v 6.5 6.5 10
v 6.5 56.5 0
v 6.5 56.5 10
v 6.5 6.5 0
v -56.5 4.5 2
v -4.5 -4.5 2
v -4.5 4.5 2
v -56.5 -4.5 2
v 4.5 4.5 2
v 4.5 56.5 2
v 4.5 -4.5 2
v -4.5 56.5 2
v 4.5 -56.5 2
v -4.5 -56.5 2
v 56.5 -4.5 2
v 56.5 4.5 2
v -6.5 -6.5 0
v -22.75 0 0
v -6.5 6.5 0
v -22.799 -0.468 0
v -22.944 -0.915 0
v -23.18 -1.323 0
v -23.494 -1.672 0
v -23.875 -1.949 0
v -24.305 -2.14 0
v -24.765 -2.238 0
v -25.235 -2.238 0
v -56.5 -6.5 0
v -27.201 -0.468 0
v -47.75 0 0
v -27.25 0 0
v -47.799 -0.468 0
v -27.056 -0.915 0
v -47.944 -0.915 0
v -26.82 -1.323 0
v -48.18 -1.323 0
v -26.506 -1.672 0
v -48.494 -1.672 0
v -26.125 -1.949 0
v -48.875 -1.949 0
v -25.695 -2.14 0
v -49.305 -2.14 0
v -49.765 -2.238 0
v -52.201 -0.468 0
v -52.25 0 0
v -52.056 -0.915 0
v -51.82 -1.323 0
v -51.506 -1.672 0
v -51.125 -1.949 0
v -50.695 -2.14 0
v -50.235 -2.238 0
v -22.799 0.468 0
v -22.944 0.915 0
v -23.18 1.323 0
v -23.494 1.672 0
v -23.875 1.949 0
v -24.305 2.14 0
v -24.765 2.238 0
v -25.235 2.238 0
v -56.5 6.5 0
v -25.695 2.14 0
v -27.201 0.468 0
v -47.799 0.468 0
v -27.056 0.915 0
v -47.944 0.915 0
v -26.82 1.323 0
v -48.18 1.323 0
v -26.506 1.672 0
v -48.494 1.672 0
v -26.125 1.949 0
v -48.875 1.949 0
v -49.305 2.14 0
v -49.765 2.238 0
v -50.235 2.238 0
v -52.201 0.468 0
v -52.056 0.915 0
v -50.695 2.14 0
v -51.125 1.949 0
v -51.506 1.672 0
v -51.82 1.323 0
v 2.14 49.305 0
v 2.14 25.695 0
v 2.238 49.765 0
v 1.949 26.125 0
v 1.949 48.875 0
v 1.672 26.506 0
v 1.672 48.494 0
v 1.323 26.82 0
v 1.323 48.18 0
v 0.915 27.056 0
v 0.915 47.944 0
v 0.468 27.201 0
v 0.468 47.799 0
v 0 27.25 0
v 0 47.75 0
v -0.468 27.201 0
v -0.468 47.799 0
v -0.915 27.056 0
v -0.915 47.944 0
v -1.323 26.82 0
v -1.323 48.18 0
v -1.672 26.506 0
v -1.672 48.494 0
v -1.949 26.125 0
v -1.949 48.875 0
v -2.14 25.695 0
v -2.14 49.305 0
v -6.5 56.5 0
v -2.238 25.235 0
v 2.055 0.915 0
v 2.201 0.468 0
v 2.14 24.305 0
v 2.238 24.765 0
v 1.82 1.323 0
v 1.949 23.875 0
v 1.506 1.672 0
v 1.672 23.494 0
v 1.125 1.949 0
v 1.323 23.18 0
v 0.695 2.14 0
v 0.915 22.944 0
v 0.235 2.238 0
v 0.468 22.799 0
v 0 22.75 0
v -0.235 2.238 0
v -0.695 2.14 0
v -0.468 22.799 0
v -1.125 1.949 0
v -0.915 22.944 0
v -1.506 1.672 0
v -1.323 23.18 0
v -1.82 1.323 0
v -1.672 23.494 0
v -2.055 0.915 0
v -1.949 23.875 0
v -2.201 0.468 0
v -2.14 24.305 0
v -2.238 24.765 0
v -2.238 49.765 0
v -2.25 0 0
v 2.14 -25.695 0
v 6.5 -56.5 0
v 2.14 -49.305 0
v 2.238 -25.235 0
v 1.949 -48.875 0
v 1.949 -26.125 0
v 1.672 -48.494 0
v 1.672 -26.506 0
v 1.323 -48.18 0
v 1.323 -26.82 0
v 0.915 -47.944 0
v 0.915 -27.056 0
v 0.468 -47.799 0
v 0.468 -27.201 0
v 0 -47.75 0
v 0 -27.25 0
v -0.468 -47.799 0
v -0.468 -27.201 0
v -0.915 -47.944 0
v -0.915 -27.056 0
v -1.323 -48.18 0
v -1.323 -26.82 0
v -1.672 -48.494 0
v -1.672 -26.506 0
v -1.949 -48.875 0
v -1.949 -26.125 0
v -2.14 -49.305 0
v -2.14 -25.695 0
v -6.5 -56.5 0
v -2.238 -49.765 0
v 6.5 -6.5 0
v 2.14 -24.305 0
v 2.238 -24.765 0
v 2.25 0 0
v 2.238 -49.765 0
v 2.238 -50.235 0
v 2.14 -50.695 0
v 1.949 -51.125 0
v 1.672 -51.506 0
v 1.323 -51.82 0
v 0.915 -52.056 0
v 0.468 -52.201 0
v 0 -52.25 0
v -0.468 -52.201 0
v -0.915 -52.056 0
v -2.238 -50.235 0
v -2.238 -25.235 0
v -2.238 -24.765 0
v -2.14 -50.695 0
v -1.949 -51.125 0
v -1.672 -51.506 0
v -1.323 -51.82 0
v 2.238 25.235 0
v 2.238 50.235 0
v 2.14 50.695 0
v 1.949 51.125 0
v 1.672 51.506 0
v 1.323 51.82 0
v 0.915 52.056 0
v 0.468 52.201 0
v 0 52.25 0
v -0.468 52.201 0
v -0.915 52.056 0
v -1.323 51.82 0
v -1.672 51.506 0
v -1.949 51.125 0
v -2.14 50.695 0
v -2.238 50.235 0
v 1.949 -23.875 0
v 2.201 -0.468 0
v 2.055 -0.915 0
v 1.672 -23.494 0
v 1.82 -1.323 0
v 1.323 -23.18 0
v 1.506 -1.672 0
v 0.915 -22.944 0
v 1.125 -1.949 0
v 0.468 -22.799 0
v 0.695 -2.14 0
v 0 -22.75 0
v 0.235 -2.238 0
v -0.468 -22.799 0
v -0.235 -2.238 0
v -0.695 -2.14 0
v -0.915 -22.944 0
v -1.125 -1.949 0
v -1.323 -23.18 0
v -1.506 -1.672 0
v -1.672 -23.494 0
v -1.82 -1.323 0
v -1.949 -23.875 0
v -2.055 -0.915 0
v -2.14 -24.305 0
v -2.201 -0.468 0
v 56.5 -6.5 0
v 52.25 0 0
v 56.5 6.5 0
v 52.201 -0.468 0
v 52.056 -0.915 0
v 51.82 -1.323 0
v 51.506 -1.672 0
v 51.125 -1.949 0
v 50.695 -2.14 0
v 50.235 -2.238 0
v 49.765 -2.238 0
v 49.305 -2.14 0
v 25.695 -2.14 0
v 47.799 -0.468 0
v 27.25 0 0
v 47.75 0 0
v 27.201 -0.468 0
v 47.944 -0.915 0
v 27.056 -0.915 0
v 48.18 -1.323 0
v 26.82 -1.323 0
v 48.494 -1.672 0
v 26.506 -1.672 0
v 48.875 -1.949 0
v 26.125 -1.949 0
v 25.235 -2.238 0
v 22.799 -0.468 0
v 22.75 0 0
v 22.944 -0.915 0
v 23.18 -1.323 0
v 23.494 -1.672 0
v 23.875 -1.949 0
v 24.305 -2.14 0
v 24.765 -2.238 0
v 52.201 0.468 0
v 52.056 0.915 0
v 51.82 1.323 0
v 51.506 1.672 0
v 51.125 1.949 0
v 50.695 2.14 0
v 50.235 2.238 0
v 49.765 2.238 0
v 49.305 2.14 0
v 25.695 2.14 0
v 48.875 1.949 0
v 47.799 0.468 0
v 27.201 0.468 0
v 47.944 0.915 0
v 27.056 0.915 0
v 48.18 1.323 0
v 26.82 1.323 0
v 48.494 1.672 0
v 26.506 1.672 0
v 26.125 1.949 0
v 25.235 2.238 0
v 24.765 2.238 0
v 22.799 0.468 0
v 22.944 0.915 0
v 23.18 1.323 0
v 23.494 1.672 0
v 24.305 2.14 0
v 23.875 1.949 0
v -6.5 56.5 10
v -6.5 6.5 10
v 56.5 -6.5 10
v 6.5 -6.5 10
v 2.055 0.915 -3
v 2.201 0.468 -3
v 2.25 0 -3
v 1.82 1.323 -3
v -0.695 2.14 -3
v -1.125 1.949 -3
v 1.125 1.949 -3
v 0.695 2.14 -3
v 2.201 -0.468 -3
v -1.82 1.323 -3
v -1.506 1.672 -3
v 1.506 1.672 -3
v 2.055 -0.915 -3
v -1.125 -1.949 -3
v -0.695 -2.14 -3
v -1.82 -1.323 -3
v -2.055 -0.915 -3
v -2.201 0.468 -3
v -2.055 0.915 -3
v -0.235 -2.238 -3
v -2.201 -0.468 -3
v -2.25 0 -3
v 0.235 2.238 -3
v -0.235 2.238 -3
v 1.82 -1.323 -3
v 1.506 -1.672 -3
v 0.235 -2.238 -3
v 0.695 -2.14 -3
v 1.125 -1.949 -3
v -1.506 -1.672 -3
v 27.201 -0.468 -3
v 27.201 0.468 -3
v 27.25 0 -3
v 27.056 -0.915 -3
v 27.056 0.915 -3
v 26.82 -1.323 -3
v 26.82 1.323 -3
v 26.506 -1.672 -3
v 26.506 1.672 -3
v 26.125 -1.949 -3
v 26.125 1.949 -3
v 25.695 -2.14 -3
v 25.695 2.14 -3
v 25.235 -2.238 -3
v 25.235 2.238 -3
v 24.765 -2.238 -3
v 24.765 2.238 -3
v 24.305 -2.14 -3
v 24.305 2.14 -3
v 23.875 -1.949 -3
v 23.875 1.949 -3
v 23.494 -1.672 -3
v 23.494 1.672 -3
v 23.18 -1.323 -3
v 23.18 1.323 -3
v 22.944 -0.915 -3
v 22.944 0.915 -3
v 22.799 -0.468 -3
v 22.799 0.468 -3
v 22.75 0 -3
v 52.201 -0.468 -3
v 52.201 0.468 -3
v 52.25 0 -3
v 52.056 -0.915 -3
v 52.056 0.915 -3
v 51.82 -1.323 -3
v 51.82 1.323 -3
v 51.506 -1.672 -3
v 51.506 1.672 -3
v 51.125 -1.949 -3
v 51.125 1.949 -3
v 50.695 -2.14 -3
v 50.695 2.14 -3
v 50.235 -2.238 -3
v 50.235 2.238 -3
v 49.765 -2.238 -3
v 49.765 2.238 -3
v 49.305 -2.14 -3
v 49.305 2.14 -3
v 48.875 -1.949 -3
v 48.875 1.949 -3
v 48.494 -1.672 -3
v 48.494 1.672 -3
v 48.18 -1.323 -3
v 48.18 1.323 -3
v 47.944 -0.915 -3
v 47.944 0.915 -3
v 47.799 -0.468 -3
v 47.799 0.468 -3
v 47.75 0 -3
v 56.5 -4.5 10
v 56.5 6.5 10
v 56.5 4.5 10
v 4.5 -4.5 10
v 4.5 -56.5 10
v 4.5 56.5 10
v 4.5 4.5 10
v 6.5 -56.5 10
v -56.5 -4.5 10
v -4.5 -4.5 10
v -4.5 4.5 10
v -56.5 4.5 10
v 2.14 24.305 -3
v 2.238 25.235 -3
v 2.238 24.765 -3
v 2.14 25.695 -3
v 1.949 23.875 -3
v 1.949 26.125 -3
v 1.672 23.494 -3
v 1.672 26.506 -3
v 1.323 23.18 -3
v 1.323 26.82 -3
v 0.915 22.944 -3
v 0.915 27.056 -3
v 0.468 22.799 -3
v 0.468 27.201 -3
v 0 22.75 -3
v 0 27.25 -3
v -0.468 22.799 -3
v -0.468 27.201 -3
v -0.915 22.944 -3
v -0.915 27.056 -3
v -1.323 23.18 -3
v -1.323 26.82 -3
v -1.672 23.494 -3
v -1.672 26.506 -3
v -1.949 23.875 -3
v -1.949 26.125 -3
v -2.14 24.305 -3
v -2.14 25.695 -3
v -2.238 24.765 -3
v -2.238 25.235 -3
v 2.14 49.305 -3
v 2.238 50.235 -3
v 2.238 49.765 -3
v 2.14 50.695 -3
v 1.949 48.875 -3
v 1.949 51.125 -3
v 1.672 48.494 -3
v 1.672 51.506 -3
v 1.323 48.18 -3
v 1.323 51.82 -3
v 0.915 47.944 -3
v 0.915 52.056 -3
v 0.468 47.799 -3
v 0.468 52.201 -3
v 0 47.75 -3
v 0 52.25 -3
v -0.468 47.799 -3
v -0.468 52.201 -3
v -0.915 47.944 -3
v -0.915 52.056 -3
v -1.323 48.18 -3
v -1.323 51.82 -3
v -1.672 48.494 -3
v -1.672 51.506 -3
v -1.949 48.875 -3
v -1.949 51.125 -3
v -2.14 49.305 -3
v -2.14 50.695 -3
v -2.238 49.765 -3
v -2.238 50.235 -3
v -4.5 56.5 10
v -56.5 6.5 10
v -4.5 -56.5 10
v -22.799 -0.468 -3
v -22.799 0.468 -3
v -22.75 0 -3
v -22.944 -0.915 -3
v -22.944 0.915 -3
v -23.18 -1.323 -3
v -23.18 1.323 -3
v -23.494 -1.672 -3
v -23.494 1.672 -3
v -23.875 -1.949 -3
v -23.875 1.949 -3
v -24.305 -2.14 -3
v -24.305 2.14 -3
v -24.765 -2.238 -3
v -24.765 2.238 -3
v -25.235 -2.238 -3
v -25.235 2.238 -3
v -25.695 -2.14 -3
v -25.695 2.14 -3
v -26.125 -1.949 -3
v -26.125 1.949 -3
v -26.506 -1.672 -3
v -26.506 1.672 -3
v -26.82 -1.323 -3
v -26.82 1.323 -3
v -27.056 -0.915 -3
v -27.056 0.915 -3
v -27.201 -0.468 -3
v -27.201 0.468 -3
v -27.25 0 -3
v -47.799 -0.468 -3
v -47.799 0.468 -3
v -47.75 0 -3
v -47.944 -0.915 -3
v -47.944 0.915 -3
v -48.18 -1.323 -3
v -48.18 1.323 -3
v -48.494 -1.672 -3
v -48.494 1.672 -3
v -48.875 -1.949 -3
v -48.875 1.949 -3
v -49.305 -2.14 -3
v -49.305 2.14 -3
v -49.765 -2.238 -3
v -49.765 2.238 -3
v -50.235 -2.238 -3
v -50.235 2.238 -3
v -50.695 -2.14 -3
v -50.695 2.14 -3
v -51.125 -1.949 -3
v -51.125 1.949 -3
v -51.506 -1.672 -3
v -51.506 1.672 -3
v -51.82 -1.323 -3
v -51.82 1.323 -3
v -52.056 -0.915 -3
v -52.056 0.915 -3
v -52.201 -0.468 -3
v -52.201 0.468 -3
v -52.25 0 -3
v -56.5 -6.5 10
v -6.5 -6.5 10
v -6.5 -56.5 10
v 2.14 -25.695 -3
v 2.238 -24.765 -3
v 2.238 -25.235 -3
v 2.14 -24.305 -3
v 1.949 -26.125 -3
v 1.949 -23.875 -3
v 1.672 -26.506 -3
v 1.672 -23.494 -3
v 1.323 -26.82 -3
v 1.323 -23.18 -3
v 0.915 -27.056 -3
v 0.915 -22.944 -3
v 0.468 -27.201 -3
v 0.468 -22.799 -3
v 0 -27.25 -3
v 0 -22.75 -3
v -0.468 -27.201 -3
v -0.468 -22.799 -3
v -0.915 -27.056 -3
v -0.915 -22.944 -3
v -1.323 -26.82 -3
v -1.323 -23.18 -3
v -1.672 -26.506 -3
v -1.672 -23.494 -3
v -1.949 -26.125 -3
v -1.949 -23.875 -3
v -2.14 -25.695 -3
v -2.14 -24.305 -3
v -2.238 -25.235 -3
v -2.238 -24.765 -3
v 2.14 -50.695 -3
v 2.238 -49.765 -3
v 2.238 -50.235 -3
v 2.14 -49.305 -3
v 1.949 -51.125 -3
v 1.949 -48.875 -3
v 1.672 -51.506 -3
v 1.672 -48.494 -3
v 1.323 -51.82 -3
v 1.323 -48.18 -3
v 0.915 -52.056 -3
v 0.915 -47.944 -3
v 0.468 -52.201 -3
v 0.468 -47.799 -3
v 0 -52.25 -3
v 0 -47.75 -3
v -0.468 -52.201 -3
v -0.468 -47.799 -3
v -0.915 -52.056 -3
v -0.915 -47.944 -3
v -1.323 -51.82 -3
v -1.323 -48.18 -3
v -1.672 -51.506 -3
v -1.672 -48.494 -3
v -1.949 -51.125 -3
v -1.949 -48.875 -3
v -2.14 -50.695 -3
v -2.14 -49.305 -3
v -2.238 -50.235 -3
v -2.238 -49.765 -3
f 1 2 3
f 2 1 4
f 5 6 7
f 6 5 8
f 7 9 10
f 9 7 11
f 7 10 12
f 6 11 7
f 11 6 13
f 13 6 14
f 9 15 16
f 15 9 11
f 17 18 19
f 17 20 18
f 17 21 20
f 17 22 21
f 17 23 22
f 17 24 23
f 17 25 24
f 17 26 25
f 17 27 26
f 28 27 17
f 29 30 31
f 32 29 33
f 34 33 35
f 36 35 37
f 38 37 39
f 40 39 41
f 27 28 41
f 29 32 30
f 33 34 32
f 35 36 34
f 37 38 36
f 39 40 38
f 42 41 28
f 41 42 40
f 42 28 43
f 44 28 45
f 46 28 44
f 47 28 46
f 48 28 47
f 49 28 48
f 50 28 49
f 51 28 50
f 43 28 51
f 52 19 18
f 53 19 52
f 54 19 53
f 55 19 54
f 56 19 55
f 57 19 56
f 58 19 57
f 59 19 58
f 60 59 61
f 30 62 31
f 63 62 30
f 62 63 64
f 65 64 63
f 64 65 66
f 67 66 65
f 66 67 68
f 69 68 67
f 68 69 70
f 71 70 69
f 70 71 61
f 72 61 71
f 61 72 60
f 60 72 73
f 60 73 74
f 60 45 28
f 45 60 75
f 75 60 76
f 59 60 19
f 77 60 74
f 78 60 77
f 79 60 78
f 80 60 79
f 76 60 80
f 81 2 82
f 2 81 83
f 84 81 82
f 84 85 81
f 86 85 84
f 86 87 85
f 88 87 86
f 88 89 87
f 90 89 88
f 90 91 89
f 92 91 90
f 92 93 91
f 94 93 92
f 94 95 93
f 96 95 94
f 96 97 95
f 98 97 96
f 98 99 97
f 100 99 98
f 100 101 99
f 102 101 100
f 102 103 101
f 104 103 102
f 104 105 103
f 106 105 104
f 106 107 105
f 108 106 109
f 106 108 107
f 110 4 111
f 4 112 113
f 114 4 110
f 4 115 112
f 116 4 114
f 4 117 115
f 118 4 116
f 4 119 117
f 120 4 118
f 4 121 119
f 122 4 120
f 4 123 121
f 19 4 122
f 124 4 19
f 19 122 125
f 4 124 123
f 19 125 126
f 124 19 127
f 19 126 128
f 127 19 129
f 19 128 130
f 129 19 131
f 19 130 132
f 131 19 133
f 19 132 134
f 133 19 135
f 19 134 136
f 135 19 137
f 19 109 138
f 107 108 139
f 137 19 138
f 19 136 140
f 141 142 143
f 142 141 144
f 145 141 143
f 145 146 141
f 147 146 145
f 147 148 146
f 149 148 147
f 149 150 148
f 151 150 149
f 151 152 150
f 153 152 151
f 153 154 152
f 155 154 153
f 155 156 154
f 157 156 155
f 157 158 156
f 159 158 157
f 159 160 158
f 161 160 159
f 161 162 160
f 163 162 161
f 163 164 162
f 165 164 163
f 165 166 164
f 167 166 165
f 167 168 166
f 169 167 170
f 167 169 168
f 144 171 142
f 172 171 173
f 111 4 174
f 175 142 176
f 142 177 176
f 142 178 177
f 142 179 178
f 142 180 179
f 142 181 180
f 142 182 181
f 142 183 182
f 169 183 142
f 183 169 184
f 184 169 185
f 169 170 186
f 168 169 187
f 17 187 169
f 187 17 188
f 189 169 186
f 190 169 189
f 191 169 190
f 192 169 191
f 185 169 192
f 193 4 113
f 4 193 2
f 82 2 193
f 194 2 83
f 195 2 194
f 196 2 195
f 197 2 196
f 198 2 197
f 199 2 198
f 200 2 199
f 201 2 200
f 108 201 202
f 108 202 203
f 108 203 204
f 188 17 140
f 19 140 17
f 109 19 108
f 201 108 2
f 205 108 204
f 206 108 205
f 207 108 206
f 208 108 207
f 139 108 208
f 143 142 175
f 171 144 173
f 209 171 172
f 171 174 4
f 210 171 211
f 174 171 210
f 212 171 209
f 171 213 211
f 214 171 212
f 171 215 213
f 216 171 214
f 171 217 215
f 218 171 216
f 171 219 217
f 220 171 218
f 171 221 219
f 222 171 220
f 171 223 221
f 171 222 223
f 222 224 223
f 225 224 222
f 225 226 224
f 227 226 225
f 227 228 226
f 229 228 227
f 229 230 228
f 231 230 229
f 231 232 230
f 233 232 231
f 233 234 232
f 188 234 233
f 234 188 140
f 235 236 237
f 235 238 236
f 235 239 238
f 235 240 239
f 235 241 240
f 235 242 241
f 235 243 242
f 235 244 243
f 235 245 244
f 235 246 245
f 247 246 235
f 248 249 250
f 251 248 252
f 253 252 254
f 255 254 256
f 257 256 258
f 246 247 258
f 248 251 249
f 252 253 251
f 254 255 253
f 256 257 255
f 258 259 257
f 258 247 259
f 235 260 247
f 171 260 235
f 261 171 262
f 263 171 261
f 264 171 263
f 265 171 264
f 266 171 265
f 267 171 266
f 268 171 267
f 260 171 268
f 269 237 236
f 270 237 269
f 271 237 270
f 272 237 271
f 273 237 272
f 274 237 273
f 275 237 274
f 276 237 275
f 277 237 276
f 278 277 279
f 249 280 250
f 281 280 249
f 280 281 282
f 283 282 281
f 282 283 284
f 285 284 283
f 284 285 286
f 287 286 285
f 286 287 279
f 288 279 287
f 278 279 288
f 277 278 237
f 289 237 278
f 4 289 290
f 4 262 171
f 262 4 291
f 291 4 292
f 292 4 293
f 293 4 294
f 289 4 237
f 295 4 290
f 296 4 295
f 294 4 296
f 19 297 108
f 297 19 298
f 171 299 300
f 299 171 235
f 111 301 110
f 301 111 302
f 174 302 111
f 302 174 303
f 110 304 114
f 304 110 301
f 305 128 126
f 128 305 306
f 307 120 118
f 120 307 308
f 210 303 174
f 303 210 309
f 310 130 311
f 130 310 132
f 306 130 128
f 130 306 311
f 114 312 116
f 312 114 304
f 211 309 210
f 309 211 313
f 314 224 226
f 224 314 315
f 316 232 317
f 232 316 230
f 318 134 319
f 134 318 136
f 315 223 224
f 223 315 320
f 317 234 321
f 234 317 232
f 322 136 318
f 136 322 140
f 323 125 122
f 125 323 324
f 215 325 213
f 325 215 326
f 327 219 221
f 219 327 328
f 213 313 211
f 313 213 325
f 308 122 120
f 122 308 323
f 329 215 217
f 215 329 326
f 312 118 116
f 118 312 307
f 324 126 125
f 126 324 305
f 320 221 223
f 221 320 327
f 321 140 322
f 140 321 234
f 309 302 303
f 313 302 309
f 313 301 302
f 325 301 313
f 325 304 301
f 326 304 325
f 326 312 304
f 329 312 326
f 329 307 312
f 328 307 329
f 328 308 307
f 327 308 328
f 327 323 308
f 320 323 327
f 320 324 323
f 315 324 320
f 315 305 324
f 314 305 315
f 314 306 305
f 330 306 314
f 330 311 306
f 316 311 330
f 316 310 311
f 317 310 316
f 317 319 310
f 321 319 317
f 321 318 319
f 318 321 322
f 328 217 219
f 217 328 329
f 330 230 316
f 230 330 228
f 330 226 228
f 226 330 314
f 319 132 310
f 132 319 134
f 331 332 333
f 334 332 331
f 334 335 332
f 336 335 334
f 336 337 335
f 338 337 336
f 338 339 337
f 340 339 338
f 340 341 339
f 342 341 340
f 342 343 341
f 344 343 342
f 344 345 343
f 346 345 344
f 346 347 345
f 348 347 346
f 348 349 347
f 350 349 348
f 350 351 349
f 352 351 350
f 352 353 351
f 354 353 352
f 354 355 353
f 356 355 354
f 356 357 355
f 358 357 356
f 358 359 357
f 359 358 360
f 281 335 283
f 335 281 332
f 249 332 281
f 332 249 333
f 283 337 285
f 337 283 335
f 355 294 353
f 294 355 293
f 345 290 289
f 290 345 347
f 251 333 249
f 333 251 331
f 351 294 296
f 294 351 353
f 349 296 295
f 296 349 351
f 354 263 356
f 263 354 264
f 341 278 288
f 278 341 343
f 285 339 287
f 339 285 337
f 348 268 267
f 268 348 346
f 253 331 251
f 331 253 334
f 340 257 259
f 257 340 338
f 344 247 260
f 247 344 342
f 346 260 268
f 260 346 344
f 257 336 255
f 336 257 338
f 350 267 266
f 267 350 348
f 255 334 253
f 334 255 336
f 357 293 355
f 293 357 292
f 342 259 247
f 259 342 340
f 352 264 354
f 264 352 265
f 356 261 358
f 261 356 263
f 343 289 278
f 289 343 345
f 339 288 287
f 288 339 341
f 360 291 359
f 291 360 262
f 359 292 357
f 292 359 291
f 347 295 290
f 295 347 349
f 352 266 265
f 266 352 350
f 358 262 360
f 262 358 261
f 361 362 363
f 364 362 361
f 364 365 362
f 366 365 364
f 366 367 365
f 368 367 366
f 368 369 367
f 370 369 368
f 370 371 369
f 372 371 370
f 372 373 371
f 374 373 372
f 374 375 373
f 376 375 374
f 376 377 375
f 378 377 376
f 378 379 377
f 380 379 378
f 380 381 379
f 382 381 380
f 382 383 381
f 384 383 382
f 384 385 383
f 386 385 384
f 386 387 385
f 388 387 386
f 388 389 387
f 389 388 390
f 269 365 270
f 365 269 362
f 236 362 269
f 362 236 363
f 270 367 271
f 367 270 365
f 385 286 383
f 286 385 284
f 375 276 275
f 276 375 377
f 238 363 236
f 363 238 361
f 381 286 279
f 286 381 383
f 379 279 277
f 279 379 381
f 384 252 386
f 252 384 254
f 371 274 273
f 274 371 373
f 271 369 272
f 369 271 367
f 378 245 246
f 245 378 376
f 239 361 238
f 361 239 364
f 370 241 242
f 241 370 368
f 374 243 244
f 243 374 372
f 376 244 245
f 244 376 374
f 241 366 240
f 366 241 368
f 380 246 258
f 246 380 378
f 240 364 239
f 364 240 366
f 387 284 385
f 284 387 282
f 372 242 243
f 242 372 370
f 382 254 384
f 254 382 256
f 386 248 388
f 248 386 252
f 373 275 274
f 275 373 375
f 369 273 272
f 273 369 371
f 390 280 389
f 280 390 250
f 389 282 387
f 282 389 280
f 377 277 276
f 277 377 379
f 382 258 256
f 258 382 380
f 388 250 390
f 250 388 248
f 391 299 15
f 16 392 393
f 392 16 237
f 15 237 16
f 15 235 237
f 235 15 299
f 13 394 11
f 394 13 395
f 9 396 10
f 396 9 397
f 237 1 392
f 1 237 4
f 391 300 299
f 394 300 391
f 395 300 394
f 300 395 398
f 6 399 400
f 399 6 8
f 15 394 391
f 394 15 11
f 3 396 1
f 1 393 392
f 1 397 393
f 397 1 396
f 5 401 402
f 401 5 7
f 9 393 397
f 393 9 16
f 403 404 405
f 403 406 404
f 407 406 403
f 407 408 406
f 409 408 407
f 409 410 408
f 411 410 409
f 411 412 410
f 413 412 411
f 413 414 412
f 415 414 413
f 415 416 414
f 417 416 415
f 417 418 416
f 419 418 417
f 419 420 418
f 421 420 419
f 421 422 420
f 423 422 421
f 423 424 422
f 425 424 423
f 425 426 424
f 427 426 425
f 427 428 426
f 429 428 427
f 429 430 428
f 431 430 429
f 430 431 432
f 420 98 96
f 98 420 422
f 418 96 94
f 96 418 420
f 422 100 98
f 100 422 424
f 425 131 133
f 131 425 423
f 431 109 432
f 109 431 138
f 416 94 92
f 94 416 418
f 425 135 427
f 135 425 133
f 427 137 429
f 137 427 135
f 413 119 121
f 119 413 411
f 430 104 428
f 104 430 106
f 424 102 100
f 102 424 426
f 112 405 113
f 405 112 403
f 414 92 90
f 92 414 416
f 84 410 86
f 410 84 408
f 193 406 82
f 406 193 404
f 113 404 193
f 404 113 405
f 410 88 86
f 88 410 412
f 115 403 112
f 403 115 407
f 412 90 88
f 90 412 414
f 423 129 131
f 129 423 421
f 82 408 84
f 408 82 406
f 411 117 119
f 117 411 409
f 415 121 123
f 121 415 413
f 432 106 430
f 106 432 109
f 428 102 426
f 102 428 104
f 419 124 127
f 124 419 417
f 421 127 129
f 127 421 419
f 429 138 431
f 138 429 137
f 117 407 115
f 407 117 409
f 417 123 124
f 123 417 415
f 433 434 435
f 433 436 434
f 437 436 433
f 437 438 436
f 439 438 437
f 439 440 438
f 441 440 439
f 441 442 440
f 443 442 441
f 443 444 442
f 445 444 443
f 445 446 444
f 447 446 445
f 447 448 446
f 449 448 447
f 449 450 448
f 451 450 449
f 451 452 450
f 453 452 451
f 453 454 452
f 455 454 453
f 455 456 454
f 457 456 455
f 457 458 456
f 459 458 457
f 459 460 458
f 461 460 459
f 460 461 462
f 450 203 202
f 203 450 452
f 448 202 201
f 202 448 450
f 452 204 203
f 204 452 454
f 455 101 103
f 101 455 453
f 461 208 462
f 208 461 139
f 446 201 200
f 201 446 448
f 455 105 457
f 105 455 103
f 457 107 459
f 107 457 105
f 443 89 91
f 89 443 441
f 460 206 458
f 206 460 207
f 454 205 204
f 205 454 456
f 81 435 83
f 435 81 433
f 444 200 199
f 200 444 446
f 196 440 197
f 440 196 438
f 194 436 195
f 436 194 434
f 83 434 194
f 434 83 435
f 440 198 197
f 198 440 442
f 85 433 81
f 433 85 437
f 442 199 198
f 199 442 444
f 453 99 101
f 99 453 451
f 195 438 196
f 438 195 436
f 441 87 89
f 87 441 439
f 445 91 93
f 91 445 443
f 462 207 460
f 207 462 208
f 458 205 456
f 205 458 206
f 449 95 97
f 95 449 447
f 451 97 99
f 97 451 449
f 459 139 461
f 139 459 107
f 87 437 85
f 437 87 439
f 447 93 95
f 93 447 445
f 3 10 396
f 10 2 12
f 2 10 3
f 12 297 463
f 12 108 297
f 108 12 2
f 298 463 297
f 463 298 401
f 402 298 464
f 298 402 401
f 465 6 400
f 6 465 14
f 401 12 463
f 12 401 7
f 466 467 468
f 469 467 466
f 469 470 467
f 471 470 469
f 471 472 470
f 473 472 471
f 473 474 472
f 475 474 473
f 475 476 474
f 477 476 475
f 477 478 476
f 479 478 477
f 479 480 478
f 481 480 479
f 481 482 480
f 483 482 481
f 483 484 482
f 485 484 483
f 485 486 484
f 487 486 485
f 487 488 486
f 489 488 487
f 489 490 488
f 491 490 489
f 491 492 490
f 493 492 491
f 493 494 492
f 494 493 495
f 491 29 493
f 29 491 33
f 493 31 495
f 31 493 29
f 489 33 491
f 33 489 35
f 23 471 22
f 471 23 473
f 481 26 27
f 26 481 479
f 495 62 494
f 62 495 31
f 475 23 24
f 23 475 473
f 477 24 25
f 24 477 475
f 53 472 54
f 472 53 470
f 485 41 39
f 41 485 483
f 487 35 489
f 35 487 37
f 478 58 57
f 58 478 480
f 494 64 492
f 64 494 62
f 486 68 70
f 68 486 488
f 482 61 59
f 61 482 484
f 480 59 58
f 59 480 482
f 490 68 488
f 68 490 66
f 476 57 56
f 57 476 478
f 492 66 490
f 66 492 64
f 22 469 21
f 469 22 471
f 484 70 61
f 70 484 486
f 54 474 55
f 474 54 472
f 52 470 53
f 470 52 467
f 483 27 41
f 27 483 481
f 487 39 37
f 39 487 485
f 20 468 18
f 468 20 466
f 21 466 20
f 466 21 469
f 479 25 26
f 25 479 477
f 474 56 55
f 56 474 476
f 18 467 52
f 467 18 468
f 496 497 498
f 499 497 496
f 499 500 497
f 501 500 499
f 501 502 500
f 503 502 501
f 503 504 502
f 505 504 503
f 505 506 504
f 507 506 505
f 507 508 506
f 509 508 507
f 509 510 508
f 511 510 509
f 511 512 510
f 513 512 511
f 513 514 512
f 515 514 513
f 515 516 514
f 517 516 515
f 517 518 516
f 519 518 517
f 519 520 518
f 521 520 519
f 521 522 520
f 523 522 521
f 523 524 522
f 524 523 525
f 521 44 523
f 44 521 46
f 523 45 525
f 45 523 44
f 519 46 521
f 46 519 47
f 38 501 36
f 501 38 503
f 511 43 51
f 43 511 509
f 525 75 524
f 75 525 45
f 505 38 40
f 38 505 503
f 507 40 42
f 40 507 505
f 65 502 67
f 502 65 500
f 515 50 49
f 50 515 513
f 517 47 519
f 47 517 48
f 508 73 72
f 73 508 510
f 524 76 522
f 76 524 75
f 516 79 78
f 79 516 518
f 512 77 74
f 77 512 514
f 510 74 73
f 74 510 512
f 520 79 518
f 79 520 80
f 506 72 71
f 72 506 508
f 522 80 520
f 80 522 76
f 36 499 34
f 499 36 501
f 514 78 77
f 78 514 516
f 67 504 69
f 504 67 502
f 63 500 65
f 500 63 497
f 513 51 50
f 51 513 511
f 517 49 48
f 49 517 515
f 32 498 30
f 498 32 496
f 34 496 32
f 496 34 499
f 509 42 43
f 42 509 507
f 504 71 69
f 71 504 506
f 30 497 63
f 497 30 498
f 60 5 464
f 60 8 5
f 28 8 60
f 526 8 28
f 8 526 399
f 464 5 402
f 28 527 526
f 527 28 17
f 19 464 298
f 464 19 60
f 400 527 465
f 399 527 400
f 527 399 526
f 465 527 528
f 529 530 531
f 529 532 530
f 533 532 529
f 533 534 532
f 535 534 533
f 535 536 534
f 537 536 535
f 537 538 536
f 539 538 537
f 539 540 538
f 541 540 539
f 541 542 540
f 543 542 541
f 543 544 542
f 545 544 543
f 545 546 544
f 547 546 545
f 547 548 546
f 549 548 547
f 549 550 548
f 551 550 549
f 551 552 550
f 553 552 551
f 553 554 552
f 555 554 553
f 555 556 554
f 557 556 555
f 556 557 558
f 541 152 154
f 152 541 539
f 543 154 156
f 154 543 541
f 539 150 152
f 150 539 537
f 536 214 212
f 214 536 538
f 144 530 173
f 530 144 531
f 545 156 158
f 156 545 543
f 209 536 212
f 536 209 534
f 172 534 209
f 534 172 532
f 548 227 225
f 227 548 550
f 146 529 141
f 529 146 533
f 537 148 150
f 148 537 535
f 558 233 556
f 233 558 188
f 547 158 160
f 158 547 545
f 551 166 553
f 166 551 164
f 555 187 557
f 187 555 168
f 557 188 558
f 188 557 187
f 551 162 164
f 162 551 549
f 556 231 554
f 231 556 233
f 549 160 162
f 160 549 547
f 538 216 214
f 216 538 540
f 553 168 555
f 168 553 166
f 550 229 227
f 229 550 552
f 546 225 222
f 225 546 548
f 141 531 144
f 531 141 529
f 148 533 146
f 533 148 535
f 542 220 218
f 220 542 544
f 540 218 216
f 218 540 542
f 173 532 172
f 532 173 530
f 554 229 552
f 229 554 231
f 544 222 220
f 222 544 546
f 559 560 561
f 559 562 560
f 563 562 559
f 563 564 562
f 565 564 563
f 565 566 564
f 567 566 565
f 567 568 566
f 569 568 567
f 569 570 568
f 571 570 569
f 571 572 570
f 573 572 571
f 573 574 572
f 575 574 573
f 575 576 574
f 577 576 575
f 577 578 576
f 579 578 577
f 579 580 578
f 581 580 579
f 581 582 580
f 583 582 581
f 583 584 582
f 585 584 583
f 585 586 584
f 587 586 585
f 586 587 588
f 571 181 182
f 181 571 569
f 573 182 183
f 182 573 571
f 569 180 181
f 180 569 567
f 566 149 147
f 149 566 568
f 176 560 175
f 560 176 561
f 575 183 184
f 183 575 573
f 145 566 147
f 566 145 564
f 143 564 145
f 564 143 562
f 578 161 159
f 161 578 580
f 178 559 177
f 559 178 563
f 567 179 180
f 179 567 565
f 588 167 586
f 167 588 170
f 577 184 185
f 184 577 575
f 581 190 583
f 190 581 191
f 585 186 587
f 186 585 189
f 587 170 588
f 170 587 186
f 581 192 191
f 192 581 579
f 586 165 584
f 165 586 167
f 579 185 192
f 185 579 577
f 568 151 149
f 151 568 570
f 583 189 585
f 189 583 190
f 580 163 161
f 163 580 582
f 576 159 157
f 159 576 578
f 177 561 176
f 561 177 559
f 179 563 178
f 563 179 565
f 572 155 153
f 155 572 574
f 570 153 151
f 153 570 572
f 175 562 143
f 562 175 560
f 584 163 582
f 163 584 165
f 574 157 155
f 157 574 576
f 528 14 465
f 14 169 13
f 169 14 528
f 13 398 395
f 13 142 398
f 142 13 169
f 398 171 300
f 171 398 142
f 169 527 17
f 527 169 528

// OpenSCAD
// file: common.scad
CENTER_SIZE = 9;
SLEEVE_REACH = 56.5;
GROOVE_WIDTH = 9;
WALL_HEIGHT = 10;
WALL_THICKNESS = 2;
BASE_THICKNESS = 2;
TOTAL_WIDTH = GROOVE_WIDTH + 2 * WALL_THICKNESS;
SLEEVE_LENGTH = SLEEVE_REACH - CENTER_SIZE/2;
DOWEL_DIAMETER = 4.5;
DOWEL_DEPTH = 3;
CARDBOARD_THICKNESS = 2;
GROOVE_BOTTOM = CARDBOARD_THICKNESS;
CURVE_POWER = 2;
CURVE_POINTS = 20;
TILT_ANGLE_EXTRA = 5;
FLEXIBLE_WALL_HEIGHT = WALL_HEIGHT * 2;
function wall_curve(z) =
    GROOVE_BOTTOM/2 + (GROOVE_WIDTH/2 - GROOVE_BOTTOM/2) * pow(z/(FLEXIBLE_WALL_HEIGHT - BASE_THICKNESS), CURVE_POWER);
module curved_wall_profile(side) {
    wall_h = FLEXIBLE_WALL_HEIGHT - BASE_THICKNESS;
    points_inner = [for (i = [0:CURVE_POINTS])
        [wall_curve(i * wall_h / CURVE_POINTS) * side,
         i * wall_h / CURVE_POINTS]
    ];
    points_outer = [for (i = [0:CURVE_POINTS])
        [(wall_curve(i * wall_h / CURVE_POINTS) + WALL_THICKNESS) * side,
         i * wall_h / CURVE_POINTS]
    ];
    all_points = concat(
        [[points_inner[0][0], 0]],
        points_inner,
        [points_outer[len(points_outer)-1]],
        [for (i = [len(points_outer)-1:-1:0]) points_outer[i]],
        [[points_outer[0][0], 0]]
    );
    polygon(all_points);
}
module draw_regular_wall_base(width) {
    translate([0, 0, BASE_THICKNESS])
        cube([width, WALL_THICKNESS, WALL_HEIGHT - BASE_THICKNESS]);
}
module draw_flexible_wall_base(width) {
    tilt_angle = atan((GROOVE_WIDTH/2 - GROOVE_BOTTOM/2) / (FLEXIBLE_WALL_HEIGHT - BASE_THICKNESS)) + TILT_ANGLE_EXTRA;
    rotate([0, 0, 90])
        rotate([tilt_angle + 6, 0, 0])
            rotate([90, 0, 90])
                linear_extrude(height = width)
                    curved_wall_profile(1);
}
module draw_center_base(with_dowel = false) {
    union() {
        translate([-TOTAL_WIDTH/2, -TOTAL_WIDTH/2, 0])
            cube([TOTAL_WIDTH, TOTAL_WIDTH, BASE_THICKNESS]);
        if (with_dowel) {
            translate([0, 0, -DOWEL_DEPTH])
                cylinder(h=DOWEL_DEPTH, d=DOWEL_DIAMETER, $fn=30);
        }
    }
}
module place_regular_center_wall(side) {
    if (side == 0) {
        translate([CENTER_SIZE/2 + WALL_THICKNESS, -TOTAL_WIDTH/2, 0])
            rotate([0, 0, 90])
                draw_regular_wall_base(TOTAL_WIDTH);
    } else if (side == 1) {
        translate([-TOTAL_WIDTH/2, CENTER_SIZE/2, 0])
            draw_regular_wall_base(TOTAL_WIDTH);
    } else if (side == 2) {
        translate([-CENTER_SIZE/2, -TOTAL_WIDTH/2, 0])
            rotate([0, 0, 90])
                draw_regular_wall_base(TOTAL_WIDTH);
    } else if (side == 3) {
        translate([-TOTAL_WIDTH/2, -CENTER_SIZE/2 - WALL_THICKNESS, 0])
            draw_regular_wall_base(TOTAL_WIDTH);
    }
}
module place_flexible_center_wall(side) {
    if (side == 0) {
        translate([CENTER_SIZE/2 - WALL_THICKNESS/2, TOTAL_WIDTH/2, 0])
            rotate([0, 0, 180])
                draw_flexible_wall_base(TOTAL_WIDTH);
    } else if (side == 1) {
        translate([-TOTAL_WIDTH/2, CENTER_SIZE/2 - WALL_THICKNESS/2, 0])
            rotate([0, 0, 270])
                draw_flexible_wall_base(TOTAL_WIDTH);
    } else if (side == 2) {
        translate([-CENTER_SIZE/2 + WALL_THICKNESS/2, -TOTAL_WIDTH/2, 0])
            draw_flexible_wall_base(TOTAL_WIDTH);
    } else if (side == 3) {
        translate([CENTER_SIZE/2 + WALL_THICKNESS, -TOTAL_WIDTH/2 + WALL_THICKNESS + WALL_THICKNESS/2, 0])
            rotate([0, 0, 90])
                draw_flexible_wall_base(TOTAL_WIDTH);
    }
}
module place_center_wall(side, wall_type = "regular") {
    if (wall_type == "regular") {
        place_regular_center_wall(side);
    } else if (wall_type == "flexible") {
        place_flexible_center_wall(side);
    }
}
module draw_sleeve_base(with_dowel = false) {
    union() {
        translate([0, -TOTAL_WIDTH/2, 0])
            cube([SLEEVE_LENGTH, TOTAL_WIDTH, BASE_THICKNESS]);
        if (with_dowel) {
            translate([25 - CENTER_SIZE/2, 0, -DOWEL_DEPTH])
                cylinder(h=DOWEL_DEPTH, d=DOWEL_DIAMETER, $fn=30);
            translate([50 - CENTER_SIZE/2, 0, -DOWEL_DEPTH])
                cylinder(h=DOWEL_DEPTH, d=DOWEL_DIAMETER, $fn=30);
        }
    }
}
module draw_regular_sleeve_wall(wall_side) {
    y_offset = (wall_side == "left") ? -TOTAL_WIDTH/2 : TOTAL_WIDTH/2 - WALL_THICKNESS;
    translate([0, y_offset, 0])
        draw_regular_wall_base(SLEEVE_LENGTH);
}
module draw_flexible_sleeve_wall(side) {
    if (side == "left") {
        translate([0, TOTAL_WIDTH/2 - WALL_THICKNESS/2 - WALL_THICKNESS, 0])
            rotate([0, 0, 270])
                draw_flexible_wall_base(SLEEVE_LENGTH);
    } else if (side == "right") {
        translate([SLEEVE_LENGTH, -TOTAL_WIDTH/2 + WALL_THICKNESS + WALL_THICKNESS/2, 0])
            rotate([0, 0, 90])
                draw_flexible_wall_base(SLEEVE_LENGTH);
    }
}
module draw_sleeve_wall(wall_side, wall_type = "regular") {
    if (wall_type == "regular") {
        draw_regular_sleeve_wall(wall_side);
    } else if (wall_type == "flexible") {
        draw_flexible_sleeve_wall(wall_side);
    }
}
module draw_full_sleeve(with_dowel = false, wall_type = "regular") {
    union() {
        draw_sleeve_base(with_dowel);
        draw_sleeve_wall("left", wall_type);
        draw_sleeve_wall("right", wall_type);
    }
}
module place_sleeve(side, with_dowel = false, wall_type = "regular") {
    if (side == 0) {
        translate([CENTER_SIZE/2, 0, 0])
            draw_full_sleeve(with_dowel, wall_type);
    } else if (side == 1) {
        rotate([0, 0, 90])
            translate([CENTER_SIZE/2, 0, 0])
                draw_full_sleeve(with_dowel, wall_type);
    } else if (side == 2) {
        rotate([0, 0, 180])
            translate([CENTER_SIZE/2, 0, 0])
                draw_full_sleeve(with_dowel, wall_type);
    } else if (side == 3) {
        rotate([0, 0, 270])
            translate([CENTER_SIZE/2, 0, 0])
                draw_full_sleeve(with_dowel, wall_type);
    }
}
module add_dowel(x, y, dowel_diameter, dowel_depth) {
    translate([x, y, -dowel_depth])
        cylinder(h=dowel_depth, d=dowel_diameter, $fn=30);
}
// main file
use <common.scad>

union() {
    draw_center_base(with_dowel = true);
    place_sleeve(0, with_dowel = true);
    place_sleeve(1, with_dowel = true);
    place_sleeve(2, with_dowel = true);
    place_sleeve(3, with_dowel = true);
}
